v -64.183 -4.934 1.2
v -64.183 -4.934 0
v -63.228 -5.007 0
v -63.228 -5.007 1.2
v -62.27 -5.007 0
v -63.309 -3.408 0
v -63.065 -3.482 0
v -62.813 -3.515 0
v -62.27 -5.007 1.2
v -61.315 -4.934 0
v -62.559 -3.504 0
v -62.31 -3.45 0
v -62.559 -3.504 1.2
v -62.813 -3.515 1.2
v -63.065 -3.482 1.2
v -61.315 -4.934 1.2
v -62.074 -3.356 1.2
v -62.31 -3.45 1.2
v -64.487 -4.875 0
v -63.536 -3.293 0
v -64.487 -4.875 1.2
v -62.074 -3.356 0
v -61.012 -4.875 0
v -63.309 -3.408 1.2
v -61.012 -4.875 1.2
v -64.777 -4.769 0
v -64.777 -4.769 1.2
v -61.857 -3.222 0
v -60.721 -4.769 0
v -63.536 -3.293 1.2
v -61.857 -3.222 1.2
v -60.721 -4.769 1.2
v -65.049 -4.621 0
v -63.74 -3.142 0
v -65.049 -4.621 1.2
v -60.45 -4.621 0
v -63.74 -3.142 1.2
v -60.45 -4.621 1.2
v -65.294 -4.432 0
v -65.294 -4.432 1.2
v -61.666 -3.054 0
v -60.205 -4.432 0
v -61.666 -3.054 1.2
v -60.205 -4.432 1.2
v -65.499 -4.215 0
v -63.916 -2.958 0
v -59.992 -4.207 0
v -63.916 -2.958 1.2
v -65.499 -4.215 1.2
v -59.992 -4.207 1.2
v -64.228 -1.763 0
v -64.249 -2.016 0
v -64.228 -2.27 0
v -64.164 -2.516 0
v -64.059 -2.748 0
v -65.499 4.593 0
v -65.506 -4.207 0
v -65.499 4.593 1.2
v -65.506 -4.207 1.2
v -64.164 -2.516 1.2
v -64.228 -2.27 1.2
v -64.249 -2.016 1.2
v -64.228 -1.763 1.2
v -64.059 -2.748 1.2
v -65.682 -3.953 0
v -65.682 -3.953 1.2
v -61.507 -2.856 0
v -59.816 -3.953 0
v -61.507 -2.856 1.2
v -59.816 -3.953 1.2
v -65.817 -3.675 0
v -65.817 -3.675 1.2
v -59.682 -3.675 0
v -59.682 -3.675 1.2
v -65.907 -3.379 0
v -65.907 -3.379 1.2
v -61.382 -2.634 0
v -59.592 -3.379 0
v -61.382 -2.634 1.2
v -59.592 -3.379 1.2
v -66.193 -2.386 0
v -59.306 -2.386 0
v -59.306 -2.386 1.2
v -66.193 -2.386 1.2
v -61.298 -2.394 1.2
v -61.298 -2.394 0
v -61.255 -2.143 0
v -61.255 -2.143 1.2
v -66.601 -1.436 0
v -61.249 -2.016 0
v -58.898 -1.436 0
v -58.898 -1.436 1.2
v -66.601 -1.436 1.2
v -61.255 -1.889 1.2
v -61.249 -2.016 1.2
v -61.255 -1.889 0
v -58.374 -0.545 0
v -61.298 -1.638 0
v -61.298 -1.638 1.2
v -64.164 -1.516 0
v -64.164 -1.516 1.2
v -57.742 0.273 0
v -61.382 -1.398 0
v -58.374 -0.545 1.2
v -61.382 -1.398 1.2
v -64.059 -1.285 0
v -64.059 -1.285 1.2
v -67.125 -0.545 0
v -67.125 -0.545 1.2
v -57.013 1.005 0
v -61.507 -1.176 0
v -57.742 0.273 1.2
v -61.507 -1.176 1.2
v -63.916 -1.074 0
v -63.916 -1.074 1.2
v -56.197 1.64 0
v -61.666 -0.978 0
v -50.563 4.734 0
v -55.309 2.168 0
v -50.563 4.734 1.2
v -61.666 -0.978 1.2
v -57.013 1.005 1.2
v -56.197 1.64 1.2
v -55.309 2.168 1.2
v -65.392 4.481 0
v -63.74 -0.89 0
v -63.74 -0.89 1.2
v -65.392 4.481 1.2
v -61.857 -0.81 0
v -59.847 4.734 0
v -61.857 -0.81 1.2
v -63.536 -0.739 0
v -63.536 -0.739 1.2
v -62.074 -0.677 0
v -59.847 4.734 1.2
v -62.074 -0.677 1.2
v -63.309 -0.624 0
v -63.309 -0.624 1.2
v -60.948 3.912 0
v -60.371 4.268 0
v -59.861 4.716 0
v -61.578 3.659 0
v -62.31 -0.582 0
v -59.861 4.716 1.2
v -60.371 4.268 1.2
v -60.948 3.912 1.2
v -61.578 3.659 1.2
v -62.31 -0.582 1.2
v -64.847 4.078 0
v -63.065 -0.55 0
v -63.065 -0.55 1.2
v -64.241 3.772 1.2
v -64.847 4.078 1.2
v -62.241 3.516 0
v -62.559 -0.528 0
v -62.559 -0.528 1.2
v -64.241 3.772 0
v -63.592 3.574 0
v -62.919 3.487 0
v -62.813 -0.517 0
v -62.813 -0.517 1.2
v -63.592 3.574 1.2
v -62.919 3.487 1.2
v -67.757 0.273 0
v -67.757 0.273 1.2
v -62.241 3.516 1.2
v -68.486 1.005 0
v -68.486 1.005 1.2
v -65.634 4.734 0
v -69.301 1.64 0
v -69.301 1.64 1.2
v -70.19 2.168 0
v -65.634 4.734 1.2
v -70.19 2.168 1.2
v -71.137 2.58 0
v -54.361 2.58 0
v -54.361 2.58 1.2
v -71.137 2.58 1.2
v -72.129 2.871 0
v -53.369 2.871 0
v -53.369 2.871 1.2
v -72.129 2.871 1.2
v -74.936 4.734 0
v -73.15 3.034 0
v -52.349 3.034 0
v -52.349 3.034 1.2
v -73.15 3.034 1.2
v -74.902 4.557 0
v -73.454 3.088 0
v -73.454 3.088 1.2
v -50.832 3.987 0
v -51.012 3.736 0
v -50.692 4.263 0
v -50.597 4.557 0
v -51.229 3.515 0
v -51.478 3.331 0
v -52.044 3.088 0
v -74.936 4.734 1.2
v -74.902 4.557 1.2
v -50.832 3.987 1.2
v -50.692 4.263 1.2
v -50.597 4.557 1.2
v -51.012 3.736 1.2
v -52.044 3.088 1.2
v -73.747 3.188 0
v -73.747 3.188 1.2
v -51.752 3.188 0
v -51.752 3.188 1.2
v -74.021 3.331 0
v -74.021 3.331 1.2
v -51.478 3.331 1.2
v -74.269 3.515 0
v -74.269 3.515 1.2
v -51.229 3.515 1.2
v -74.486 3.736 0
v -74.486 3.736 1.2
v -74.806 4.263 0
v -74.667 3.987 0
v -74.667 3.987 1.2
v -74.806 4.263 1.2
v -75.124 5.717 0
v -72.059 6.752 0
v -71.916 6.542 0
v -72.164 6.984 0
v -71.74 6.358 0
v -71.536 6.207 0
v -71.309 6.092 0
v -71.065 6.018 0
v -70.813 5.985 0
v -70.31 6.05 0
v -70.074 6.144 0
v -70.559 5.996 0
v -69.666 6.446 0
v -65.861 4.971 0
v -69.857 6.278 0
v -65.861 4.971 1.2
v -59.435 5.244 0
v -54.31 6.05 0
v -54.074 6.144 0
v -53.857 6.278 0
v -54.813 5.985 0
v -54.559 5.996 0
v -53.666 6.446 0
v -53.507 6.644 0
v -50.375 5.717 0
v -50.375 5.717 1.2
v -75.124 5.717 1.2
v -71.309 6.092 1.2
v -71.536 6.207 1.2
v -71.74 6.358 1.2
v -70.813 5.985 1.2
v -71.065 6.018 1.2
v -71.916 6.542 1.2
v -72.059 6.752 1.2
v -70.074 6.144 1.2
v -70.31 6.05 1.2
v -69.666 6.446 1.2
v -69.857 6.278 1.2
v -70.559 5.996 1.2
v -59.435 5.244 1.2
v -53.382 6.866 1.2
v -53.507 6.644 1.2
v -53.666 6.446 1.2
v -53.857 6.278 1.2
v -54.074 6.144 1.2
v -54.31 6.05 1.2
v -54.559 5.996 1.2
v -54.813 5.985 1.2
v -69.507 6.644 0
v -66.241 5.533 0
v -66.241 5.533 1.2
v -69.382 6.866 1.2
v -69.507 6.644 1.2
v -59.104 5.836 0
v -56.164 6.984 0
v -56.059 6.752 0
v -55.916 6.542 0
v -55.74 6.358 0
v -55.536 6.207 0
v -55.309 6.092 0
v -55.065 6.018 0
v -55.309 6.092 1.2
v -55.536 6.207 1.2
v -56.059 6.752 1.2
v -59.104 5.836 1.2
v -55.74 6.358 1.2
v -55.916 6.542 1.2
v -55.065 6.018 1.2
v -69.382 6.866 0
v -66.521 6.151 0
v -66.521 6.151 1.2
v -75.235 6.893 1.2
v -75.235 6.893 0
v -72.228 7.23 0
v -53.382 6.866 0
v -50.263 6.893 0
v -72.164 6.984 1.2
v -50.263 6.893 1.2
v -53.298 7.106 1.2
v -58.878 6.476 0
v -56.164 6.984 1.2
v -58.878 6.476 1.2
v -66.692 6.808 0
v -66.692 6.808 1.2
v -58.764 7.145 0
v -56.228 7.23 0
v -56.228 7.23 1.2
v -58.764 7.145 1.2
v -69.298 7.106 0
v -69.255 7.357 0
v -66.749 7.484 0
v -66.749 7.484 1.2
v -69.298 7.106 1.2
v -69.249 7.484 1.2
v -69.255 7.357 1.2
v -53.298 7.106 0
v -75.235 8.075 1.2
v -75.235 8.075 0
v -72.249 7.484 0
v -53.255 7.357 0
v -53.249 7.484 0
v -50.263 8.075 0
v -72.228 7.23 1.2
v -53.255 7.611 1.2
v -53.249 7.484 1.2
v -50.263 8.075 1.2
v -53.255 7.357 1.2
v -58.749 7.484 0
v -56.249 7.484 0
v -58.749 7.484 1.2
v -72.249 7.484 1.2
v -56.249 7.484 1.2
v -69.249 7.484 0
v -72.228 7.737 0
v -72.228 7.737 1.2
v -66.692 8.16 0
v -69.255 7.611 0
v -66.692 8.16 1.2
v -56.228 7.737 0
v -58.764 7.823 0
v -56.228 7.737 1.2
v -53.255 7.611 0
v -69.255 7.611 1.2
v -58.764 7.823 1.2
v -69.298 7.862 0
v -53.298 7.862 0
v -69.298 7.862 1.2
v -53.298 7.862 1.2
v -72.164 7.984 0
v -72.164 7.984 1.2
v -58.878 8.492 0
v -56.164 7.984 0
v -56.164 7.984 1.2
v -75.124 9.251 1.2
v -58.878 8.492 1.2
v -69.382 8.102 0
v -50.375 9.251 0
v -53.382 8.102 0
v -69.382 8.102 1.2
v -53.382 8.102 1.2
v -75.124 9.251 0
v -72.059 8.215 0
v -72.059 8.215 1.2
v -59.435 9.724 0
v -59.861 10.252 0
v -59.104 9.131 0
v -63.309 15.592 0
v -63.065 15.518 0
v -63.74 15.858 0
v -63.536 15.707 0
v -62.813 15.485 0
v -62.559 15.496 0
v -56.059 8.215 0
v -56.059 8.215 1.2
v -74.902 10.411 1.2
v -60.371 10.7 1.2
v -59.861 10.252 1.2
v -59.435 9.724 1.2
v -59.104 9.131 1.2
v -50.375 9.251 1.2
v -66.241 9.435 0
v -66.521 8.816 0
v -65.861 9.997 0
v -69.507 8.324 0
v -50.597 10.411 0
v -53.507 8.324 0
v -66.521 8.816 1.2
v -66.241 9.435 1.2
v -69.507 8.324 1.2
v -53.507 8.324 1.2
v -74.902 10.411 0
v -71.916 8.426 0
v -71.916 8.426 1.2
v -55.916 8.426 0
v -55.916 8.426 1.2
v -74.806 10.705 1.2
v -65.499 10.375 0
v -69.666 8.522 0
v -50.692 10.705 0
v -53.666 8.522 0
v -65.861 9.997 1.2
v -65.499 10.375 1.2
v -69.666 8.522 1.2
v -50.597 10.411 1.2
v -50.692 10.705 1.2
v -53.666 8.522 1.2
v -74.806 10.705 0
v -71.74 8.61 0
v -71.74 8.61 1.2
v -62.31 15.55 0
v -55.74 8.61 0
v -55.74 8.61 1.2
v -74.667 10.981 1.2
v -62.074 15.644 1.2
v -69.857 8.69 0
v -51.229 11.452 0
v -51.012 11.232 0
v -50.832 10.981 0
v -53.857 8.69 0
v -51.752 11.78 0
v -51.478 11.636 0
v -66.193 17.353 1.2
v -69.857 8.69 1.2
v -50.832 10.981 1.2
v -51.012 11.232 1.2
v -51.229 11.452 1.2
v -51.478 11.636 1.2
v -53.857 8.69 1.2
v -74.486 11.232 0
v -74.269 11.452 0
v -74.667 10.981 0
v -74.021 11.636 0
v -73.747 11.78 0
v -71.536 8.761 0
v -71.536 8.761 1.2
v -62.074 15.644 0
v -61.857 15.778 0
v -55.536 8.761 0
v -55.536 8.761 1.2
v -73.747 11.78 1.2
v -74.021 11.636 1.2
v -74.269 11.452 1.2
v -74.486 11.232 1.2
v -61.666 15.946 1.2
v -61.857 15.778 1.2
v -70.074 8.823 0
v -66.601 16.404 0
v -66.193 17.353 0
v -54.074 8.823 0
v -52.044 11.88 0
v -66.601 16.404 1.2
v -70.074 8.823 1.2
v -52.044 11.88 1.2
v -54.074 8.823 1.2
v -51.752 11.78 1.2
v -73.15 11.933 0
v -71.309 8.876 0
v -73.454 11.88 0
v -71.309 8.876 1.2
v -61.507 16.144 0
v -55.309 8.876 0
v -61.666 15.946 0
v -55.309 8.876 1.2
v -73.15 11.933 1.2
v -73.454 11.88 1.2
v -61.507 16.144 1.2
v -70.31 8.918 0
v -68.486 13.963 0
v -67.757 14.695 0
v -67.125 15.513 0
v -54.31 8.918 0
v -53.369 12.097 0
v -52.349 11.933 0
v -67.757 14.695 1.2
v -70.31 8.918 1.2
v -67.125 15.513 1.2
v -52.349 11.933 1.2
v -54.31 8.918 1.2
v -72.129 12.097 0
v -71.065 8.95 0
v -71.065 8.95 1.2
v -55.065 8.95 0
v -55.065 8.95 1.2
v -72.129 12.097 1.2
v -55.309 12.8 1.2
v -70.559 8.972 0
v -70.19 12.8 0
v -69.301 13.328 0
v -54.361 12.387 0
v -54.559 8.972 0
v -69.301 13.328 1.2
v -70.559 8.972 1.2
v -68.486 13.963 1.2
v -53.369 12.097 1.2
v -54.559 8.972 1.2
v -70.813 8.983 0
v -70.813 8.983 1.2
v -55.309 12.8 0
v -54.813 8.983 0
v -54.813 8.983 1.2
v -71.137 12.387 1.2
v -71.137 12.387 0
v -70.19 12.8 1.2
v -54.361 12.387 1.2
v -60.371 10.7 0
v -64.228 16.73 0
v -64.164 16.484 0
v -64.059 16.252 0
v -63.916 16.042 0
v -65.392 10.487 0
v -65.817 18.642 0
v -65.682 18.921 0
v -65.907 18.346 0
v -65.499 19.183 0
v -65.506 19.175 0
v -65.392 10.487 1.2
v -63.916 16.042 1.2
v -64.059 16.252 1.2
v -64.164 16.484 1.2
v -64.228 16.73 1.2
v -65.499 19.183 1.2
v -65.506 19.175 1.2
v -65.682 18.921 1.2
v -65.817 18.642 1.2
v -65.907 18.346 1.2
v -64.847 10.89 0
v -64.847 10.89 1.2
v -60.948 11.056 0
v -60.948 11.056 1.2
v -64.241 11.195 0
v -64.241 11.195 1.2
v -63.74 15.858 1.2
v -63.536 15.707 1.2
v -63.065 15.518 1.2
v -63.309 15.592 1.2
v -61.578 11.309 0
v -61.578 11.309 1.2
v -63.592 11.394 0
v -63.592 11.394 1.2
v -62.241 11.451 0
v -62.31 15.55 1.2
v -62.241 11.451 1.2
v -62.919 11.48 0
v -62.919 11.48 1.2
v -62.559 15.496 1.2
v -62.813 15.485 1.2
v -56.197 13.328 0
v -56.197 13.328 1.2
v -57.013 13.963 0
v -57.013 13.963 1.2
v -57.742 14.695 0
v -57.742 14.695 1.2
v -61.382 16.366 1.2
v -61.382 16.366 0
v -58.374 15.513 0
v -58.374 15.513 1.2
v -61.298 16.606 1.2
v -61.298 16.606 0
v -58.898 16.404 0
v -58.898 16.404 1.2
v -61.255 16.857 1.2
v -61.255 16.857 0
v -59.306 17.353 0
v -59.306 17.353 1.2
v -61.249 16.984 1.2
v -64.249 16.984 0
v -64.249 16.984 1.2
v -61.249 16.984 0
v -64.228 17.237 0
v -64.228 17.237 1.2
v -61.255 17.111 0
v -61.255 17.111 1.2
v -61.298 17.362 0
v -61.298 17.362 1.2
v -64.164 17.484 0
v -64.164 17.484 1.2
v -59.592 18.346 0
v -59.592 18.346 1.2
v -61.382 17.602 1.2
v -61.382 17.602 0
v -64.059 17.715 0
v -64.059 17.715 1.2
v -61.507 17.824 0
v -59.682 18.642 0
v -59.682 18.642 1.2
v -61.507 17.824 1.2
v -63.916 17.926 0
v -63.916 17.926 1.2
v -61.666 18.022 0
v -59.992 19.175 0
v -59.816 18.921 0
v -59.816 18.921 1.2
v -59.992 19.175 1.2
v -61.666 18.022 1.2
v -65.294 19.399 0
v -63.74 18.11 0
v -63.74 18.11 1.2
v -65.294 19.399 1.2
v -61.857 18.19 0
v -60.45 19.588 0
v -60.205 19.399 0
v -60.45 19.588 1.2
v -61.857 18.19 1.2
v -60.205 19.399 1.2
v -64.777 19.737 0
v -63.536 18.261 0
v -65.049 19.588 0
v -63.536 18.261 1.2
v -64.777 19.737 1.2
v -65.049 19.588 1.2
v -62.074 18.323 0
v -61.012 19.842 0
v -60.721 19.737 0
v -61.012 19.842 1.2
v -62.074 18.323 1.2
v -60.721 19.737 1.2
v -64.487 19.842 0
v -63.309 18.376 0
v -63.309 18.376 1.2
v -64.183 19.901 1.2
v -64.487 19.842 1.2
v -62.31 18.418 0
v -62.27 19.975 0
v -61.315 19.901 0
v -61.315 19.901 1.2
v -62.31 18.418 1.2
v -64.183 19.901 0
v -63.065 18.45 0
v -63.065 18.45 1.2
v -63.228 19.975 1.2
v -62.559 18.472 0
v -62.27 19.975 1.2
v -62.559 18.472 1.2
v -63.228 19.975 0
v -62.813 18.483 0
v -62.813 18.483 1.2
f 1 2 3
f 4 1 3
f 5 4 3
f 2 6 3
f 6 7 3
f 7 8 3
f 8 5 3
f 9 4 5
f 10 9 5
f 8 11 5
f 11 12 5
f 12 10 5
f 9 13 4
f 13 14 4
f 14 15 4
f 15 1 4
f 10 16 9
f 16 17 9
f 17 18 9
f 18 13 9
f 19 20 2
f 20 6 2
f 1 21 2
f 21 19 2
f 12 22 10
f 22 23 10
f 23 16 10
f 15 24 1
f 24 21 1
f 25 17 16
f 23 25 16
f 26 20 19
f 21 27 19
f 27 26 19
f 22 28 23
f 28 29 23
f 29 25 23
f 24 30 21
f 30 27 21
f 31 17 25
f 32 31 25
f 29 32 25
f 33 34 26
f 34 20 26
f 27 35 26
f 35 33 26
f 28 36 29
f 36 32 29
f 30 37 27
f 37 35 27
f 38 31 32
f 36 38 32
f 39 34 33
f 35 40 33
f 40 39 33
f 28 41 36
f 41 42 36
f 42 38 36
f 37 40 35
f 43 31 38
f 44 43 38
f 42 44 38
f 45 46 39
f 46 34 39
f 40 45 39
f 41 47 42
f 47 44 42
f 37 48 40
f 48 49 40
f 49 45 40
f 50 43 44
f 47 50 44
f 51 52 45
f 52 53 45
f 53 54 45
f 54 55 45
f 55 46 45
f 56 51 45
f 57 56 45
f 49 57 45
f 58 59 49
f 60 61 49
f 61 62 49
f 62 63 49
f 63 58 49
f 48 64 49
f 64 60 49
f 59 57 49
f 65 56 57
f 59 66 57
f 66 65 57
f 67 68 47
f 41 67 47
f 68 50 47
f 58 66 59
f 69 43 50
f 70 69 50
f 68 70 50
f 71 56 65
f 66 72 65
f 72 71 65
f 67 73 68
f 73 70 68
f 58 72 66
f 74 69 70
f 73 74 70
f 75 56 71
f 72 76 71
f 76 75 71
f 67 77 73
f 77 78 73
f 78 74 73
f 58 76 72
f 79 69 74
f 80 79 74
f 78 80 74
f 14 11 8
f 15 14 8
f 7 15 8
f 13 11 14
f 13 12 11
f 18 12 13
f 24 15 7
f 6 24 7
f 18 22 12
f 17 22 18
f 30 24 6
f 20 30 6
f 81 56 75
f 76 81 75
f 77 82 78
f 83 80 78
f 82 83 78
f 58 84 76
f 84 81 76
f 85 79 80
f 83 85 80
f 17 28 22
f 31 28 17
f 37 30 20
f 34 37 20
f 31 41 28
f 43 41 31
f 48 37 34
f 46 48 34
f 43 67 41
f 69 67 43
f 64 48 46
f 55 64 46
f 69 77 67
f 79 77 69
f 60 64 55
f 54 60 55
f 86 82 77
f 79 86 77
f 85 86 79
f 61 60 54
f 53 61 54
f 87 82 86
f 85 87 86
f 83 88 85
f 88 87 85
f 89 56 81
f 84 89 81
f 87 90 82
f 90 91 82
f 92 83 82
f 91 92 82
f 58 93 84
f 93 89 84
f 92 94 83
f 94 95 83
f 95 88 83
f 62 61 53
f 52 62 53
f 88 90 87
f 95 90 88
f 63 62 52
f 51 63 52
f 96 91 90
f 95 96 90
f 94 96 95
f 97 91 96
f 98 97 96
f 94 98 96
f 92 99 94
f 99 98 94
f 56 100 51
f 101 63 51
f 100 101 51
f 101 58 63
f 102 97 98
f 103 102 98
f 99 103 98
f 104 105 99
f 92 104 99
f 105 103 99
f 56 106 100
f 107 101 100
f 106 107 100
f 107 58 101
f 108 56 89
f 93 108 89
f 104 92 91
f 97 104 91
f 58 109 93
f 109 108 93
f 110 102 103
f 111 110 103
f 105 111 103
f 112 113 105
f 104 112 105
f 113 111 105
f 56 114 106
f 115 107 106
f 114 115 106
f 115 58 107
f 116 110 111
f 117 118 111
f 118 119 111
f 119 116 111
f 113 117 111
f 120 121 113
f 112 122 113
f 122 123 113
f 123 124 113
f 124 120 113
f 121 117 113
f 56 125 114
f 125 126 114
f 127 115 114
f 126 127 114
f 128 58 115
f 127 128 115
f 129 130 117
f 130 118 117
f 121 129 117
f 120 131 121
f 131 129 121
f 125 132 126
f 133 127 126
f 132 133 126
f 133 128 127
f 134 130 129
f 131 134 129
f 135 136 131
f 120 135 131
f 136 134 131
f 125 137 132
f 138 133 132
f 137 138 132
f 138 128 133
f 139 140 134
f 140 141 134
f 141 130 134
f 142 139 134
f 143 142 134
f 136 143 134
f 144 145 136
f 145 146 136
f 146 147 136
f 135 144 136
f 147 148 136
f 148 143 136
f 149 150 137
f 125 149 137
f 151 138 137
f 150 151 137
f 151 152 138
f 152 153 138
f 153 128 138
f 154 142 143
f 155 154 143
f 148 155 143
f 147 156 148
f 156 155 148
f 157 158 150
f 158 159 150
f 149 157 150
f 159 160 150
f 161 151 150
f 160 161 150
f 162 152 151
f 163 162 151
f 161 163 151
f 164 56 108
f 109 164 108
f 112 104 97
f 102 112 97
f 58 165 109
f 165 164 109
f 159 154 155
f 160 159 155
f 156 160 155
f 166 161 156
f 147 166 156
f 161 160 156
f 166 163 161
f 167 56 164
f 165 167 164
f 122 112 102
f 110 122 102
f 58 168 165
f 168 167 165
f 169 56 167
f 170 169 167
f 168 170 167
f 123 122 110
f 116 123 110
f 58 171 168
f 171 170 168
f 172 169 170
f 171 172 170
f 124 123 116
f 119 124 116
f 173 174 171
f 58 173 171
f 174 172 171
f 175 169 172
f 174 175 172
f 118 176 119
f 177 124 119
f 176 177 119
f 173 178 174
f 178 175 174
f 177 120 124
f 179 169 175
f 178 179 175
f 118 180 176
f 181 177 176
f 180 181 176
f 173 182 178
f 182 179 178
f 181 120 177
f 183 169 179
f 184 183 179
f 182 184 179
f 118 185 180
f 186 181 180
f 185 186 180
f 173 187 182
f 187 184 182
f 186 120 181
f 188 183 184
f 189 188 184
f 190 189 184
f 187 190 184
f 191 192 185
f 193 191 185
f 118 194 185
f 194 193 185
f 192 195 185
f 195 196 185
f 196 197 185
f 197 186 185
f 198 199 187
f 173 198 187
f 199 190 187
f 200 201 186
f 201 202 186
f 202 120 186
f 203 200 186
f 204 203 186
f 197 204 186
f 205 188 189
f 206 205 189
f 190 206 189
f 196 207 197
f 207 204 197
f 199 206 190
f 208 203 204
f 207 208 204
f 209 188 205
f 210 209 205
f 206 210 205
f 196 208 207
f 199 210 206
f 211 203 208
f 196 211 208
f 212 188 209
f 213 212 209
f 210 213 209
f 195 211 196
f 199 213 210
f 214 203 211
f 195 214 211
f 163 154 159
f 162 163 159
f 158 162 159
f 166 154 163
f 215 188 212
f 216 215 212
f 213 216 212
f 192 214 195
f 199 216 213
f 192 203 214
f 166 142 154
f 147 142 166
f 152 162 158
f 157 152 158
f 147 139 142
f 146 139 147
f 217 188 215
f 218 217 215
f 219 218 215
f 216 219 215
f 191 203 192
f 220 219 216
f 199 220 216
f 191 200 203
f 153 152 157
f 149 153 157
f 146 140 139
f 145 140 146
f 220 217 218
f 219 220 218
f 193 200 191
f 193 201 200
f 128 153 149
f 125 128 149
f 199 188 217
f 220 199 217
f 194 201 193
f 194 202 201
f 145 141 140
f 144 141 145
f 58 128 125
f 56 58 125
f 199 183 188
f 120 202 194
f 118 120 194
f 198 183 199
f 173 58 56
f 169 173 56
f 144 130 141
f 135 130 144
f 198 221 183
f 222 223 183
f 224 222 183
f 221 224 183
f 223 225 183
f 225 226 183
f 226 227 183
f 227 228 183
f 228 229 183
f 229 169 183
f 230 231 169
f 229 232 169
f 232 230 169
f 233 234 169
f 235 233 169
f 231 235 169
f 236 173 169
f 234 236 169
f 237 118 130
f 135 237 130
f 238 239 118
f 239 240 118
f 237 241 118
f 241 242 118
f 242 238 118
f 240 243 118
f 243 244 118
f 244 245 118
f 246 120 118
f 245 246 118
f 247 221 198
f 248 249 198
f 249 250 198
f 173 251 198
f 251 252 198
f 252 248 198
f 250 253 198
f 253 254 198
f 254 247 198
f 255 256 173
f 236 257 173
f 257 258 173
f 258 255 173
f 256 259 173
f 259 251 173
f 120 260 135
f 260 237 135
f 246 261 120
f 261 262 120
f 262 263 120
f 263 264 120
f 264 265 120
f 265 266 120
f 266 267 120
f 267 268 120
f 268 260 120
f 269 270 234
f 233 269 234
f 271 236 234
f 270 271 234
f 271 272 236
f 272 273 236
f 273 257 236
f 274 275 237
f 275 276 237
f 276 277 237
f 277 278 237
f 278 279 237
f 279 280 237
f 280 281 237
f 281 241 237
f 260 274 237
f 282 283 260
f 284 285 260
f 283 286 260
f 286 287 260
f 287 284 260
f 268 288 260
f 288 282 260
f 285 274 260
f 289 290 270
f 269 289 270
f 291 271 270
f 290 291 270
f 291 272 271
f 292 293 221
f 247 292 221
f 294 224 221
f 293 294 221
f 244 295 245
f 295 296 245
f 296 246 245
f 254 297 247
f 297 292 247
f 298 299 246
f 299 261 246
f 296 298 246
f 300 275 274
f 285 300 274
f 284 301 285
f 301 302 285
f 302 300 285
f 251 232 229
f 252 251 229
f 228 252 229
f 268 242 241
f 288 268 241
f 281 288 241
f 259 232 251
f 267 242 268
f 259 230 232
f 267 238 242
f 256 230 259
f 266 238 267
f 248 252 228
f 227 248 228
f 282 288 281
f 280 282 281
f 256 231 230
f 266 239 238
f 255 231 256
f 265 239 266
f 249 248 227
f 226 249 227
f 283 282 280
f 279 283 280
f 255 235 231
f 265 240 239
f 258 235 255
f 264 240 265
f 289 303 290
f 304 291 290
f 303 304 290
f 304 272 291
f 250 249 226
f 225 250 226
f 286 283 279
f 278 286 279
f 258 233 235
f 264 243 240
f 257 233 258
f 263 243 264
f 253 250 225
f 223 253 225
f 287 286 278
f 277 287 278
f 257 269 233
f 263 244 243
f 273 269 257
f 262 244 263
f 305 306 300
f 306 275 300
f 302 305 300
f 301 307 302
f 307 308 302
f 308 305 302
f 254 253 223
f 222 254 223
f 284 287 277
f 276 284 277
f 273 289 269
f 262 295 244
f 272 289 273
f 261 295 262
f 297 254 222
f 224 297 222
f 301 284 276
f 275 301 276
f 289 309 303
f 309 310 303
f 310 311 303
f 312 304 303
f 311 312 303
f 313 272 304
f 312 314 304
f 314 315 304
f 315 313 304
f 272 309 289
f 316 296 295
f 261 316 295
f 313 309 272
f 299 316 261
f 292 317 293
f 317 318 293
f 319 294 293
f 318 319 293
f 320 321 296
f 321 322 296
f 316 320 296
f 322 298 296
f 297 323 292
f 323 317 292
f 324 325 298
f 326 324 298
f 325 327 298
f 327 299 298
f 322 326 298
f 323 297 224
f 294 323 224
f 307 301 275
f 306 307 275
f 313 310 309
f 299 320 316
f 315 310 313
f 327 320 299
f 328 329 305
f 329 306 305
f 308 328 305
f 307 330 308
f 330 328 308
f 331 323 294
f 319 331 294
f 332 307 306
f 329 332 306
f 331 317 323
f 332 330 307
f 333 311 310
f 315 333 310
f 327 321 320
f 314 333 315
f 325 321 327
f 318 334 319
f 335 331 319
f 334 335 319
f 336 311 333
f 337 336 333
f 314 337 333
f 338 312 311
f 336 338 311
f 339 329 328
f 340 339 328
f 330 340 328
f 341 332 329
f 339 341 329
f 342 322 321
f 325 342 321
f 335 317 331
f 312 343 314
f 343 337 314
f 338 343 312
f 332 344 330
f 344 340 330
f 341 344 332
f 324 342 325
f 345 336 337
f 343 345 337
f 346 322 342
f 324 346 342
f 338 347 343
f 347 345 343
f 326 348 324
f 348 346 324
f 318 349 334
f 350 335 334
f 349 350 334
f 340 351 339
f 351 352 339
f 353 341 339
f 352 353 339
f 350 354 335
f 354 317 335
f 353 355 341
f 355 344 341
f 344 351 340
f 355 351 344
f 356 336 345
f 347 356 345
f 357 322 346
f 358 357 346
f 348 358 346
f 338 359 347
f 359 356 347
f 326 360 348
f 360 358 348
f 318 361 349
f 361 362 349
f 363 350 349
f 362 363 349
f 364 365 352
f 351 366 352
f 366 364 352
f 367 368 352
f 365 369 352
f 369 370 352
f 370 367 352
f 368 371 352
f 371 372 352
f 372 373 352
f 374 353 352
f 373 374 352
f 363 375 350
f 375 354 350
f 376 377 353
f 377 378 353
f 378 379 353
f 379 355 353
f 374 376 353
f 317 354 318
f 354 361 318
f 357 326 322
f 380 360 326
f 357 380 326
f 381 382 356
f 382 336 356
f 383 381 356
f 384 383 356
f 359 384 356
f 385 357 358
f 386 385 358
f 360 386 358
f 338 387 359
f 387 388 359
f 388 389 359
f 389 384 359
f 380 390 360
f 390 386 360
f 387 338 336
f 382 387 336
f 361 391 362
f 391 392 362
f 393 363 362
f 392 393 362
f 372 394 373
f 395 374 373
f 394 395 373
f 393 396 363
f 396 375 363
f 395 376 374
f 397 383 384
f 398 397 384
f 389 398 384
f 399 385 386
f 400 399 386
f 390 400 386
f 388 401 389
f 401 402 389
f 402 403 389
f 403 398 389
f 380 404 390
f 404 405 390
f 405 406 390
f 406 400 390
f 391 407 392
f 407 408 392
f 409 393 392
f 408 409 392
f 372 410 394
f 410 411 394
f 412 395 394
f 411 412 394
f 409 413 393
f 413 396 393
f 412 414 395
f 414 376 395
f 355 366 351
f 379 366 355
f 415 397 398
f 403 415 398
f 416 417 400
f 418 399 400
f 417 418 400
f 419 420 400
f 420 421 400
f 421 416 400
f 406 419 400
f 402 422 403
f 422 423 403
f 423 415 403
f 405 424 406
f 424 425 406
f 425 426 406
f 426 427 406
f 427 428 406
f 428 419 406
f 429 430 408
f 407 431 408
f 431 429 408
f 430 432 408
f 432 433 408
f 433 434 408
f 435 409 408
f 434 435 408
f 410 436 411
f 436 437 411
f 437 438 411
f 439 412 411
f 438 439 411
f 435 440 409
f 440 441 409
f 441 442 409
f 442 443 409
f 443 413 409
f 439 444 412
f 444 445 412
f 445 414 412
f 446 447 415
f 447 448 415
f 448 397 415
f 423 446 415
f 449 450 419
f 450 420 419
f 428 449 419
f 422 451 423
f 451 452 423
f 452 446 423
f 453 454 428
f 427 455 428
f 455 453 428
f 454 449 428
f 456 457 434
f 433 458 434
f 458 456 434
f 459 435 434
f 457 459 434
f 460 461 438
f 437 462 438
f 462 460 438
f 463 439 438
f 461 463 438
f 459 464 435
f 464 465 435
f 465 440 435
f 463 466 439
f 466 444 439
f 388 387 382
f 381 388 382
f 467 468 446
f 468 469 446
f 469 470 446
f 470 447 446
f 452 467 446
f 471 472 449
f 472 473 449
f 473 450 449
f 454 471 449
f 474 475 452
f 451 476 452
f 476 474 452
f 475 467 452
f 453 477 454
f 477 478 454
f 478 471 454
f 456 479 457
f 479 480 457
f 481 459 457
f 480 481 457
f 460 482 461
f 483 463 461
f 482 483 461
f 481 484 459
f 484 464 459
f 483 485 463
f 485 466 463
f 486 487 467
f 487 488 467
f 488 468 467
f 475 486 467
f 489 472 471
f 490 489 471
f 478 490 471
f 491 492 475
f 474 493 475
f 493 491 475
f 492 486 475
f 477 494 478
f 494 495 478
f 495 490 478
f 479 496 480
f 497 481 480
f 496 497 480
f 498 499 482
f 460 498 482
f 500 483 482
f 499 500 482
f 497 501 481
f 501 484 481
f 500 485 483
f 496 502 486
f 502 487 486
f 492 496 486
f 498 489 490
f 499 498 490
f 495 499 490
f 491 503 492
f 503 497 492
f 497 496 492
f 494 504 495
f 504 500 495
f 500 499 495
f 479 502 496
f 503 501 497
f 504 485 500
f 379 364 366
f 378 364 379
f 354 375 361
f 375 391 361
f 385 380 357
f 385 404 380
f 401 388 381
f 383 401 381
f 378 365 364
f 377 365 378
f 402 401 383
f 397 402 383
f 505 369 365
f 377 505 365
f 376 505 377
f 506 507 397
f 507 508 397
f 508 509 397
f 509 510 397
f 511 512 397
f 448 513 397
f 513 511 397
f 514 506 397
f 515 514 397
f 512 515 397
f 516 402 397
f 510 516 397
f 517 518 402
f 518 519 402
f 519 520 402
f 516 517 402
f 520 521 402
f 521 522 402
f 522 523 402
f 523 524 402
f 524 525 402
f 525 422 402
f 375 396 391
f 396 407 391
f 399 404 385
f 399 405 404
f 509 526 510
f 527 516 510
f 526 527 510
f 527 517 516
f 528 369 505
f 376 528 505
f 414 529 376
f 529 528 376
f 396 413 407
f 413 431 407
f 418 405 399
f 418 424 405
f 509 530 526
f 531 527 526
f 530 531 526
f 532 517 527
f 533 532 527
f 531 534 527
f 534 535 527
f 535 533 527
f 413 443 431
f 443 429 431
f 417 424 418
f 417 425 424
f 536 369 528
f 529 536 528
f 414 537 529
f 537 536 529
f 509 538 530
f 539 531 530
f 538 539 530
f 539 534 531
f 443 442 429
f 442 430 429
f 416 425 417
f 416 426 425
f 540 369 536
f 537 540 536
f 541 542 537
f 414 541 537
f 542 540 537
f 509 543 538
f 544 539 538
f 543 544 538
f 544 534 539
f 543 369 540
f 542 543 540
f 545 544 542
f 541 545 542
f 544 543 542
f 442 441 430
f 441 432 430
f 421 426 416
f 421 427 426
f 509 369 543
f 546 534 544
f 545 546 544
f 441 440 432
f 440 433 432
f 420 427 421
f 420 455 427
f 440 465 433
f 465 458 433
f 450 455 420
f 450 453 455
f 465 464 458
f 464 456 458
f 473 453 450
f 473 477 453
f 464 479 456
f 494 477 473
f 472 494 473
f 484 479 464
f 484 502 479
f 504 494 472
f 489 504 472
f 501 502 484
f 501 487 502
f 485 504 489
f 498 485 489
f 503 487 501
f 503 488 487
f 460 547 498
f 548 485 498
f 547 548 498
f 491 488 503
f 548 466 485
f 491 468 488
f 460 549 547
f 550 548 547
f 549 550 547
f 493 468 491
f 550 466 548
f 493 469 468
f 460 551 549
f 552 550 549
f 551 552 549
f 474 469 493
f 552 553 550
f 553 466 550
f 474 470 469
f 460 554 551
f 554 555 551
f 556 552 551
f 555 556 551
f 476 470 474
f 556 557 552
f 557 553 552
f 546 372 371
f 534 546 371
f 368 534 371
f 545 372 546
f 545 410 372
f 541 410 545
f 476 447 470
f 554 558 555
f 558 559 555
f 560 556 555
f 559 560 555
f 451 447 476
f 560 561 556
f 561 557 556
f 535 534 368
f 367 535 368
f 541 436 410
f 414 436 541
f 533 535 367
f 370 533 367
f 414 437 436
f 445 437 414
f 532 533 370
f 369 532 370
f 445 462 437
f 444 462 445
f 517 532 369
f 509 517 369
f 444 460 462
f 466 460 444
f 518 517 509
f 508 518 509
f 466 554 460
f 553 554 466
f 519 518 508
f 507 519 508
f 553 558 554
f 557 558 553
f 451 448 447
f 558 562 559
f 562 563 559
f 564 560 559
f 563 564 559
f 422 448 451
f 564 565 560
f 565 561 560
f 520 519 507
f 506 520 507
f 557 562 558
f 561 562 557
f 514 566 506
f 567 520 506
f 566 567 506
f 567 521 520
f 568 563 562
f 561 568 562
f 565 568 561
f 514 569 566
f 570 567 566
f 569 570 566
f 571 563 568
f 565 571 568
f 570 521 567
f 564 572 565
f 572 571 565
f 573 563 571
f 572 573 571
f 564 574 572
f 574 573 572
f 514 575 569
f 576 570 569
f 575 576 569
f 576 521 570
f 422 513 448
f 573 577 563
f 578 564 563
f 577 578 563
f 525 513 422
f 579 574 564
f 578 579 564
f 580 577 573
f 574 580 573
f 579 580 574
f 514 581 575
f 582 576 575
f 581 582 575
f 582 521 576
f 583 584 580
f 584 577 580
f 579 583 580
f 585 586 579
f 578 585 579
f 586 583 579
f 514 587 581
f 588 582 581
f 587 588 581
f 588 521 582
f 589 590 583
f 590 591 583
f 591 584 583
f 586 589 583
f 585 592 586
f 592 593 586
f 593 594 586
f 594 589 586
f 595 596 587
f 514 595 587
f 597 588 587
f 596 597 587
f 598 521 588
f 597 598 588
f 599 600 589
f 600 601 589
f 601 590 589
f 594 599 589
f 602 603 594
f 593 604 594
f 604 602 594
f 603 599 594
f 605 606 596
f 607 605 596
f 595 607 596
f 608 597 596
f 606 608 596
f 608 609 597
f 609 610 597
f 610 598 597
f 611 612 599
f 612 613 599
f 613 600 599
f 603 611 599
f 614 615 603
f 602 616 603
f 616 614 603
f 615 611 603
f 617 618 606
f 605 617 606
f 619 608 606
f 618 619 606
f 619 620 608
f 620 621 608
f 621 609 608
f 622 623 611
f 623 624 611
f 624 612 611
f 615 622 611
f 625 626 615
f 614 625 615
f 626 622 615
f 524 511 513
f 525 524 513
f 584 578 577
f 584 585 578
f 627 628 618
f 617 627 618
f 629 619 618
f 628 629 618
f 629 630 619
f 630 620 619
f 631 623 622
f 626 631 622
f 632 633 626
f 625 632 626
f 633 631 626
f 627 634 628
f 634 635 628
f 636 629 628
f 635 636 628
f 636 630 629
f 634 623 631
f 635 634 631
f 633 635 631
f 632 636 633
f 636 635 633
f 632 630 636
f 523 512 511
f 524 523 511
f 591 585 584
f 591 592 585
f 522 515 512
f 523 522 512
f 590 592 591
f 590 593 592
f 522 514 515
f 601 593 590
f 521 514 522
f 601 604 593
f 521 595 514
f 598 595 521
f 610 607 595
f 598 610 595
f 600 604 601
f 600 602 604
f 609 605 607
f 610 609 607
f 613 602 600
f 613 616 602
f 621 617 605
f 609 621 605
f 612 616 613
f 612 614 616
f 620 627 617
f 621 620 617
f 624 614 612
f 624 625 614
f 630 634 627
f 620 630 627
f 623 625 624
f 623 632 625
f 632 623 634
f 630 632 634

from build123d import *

# Parameters (mm, degrees)
CROQUIS1_R              = 12.5
CROQUIS1_R_2            = 1.5
CROQUIS1_R_3            = 4
SALIENTE_EXTRUIR1_DEPTH = 1.2
CORTAR_EXTRUIR1_DEPTH   = 10
REDONDEO1_R             = 2


with BuildPart() as part:
    # Croquis1 → Saliente-Extruir1 (new body)
    with BuildSketch(Plane.XY):
        with Locations((-62.749306062, 7.483862191)):
            Circle(CROQUIS1_R)
        with Locations((-70.749306062, 7.483862191)):
            Circle(CROQUIS1_R_2, mode=Mode.SUBTRACT)
        with Locations((-54.749306062, 7.483862191)):
            Circle(CROQUIS1_R_2, mode=Mode.SUBTRACT)
        with Locations((-62.749306062, 16.983862191)):
            Circle(CROQUIS1_R_2, mode=Mode.SUBTRACT)
        with Locations((-62.749306062, -2.016137809)):
            Circle(CROQUIS1_R_2, mode=Mode.SUBTRACT)
        with Locations((-62.749306062, 7.483862191)):
            Circle(CROQUIS1_R_3, mode=Mode.SUBTRACT)
    extrude(amount=SALIENTE_EXTRUIR1_DEPTH)

    # Croquis2 → Cortar-Extruir1 (cut)
    with BuildSketch(Plane(origin=(0, 0, 0), x_dir=(-1, 0, 0), z_dir=(0, 0, -1))):
        with BuildLine():
            ThreePointArc((74.439306062, 11.910361937), (71.035706773, 16.842578089), (65.727627737, 19.623862191))
            ThreePointArc((65.727627737, 19.623862191), (68.485948691, 13.962864407), (74.439306062, 11.910361937))
        make_face()
        with BuildLine():
            ThreePointArc((74.439306062, 3.057362445), (71.035706773, -1.874853707), (65.727627737, -4.656137809))
            ThreePointArc((65.727627737, -4.656137809), (68.485948691, 1.004859975), (74.439306062, 3.057362445))
        make_face()
        with BuildLine():
            ThreePointArc((51.059306062, 3.057362445), (54.462905352, -1.874853707), (59.770984387, -4.656137809))
            ThreePointArc((59.770984387, -4.656137809), (57.012663434, 1.004859975), (51.059306062, 3.057362445))
        make_face()
        with BuildLine():
            ThreePointArc((51.059306062, 11.910361937), (54.462905352, 16.842578089), (59.770984387, 19.623862191))
            ThreePointArc((59.770984387, 19.623862191), (57.012663434, 13.962864407), (51.059306062, 11.910361937))
        make_face()
    extrude(amount=-CORTAR_EXTRUIR1_DEPTH, mode=Mode.SUBTRACT)

    # Redondeo1
    redondeo1_edges = [part.edges().sort_by_distance(p)[0] for p in [
        (-59.770984387, 19.623862191, 0.6),
        (-51.059306062, 11.910361937, 0.6),
        (-74.439306062, 11.910361937, 0.6),
        (-65.727627737, 19.623862191, 0.6),
        (-65.727627737, -4.656137809, 0.6),
        (-74.439306062, 3.057362445, 0.6),
        (-51.059306062, 3.057362445, 0.6),
        (-59.770984387, -4.656137809, 0.6),
    ]]
    fillet(redondeo1_edges, radius=REDONDEO1_R)


solid = part.part
